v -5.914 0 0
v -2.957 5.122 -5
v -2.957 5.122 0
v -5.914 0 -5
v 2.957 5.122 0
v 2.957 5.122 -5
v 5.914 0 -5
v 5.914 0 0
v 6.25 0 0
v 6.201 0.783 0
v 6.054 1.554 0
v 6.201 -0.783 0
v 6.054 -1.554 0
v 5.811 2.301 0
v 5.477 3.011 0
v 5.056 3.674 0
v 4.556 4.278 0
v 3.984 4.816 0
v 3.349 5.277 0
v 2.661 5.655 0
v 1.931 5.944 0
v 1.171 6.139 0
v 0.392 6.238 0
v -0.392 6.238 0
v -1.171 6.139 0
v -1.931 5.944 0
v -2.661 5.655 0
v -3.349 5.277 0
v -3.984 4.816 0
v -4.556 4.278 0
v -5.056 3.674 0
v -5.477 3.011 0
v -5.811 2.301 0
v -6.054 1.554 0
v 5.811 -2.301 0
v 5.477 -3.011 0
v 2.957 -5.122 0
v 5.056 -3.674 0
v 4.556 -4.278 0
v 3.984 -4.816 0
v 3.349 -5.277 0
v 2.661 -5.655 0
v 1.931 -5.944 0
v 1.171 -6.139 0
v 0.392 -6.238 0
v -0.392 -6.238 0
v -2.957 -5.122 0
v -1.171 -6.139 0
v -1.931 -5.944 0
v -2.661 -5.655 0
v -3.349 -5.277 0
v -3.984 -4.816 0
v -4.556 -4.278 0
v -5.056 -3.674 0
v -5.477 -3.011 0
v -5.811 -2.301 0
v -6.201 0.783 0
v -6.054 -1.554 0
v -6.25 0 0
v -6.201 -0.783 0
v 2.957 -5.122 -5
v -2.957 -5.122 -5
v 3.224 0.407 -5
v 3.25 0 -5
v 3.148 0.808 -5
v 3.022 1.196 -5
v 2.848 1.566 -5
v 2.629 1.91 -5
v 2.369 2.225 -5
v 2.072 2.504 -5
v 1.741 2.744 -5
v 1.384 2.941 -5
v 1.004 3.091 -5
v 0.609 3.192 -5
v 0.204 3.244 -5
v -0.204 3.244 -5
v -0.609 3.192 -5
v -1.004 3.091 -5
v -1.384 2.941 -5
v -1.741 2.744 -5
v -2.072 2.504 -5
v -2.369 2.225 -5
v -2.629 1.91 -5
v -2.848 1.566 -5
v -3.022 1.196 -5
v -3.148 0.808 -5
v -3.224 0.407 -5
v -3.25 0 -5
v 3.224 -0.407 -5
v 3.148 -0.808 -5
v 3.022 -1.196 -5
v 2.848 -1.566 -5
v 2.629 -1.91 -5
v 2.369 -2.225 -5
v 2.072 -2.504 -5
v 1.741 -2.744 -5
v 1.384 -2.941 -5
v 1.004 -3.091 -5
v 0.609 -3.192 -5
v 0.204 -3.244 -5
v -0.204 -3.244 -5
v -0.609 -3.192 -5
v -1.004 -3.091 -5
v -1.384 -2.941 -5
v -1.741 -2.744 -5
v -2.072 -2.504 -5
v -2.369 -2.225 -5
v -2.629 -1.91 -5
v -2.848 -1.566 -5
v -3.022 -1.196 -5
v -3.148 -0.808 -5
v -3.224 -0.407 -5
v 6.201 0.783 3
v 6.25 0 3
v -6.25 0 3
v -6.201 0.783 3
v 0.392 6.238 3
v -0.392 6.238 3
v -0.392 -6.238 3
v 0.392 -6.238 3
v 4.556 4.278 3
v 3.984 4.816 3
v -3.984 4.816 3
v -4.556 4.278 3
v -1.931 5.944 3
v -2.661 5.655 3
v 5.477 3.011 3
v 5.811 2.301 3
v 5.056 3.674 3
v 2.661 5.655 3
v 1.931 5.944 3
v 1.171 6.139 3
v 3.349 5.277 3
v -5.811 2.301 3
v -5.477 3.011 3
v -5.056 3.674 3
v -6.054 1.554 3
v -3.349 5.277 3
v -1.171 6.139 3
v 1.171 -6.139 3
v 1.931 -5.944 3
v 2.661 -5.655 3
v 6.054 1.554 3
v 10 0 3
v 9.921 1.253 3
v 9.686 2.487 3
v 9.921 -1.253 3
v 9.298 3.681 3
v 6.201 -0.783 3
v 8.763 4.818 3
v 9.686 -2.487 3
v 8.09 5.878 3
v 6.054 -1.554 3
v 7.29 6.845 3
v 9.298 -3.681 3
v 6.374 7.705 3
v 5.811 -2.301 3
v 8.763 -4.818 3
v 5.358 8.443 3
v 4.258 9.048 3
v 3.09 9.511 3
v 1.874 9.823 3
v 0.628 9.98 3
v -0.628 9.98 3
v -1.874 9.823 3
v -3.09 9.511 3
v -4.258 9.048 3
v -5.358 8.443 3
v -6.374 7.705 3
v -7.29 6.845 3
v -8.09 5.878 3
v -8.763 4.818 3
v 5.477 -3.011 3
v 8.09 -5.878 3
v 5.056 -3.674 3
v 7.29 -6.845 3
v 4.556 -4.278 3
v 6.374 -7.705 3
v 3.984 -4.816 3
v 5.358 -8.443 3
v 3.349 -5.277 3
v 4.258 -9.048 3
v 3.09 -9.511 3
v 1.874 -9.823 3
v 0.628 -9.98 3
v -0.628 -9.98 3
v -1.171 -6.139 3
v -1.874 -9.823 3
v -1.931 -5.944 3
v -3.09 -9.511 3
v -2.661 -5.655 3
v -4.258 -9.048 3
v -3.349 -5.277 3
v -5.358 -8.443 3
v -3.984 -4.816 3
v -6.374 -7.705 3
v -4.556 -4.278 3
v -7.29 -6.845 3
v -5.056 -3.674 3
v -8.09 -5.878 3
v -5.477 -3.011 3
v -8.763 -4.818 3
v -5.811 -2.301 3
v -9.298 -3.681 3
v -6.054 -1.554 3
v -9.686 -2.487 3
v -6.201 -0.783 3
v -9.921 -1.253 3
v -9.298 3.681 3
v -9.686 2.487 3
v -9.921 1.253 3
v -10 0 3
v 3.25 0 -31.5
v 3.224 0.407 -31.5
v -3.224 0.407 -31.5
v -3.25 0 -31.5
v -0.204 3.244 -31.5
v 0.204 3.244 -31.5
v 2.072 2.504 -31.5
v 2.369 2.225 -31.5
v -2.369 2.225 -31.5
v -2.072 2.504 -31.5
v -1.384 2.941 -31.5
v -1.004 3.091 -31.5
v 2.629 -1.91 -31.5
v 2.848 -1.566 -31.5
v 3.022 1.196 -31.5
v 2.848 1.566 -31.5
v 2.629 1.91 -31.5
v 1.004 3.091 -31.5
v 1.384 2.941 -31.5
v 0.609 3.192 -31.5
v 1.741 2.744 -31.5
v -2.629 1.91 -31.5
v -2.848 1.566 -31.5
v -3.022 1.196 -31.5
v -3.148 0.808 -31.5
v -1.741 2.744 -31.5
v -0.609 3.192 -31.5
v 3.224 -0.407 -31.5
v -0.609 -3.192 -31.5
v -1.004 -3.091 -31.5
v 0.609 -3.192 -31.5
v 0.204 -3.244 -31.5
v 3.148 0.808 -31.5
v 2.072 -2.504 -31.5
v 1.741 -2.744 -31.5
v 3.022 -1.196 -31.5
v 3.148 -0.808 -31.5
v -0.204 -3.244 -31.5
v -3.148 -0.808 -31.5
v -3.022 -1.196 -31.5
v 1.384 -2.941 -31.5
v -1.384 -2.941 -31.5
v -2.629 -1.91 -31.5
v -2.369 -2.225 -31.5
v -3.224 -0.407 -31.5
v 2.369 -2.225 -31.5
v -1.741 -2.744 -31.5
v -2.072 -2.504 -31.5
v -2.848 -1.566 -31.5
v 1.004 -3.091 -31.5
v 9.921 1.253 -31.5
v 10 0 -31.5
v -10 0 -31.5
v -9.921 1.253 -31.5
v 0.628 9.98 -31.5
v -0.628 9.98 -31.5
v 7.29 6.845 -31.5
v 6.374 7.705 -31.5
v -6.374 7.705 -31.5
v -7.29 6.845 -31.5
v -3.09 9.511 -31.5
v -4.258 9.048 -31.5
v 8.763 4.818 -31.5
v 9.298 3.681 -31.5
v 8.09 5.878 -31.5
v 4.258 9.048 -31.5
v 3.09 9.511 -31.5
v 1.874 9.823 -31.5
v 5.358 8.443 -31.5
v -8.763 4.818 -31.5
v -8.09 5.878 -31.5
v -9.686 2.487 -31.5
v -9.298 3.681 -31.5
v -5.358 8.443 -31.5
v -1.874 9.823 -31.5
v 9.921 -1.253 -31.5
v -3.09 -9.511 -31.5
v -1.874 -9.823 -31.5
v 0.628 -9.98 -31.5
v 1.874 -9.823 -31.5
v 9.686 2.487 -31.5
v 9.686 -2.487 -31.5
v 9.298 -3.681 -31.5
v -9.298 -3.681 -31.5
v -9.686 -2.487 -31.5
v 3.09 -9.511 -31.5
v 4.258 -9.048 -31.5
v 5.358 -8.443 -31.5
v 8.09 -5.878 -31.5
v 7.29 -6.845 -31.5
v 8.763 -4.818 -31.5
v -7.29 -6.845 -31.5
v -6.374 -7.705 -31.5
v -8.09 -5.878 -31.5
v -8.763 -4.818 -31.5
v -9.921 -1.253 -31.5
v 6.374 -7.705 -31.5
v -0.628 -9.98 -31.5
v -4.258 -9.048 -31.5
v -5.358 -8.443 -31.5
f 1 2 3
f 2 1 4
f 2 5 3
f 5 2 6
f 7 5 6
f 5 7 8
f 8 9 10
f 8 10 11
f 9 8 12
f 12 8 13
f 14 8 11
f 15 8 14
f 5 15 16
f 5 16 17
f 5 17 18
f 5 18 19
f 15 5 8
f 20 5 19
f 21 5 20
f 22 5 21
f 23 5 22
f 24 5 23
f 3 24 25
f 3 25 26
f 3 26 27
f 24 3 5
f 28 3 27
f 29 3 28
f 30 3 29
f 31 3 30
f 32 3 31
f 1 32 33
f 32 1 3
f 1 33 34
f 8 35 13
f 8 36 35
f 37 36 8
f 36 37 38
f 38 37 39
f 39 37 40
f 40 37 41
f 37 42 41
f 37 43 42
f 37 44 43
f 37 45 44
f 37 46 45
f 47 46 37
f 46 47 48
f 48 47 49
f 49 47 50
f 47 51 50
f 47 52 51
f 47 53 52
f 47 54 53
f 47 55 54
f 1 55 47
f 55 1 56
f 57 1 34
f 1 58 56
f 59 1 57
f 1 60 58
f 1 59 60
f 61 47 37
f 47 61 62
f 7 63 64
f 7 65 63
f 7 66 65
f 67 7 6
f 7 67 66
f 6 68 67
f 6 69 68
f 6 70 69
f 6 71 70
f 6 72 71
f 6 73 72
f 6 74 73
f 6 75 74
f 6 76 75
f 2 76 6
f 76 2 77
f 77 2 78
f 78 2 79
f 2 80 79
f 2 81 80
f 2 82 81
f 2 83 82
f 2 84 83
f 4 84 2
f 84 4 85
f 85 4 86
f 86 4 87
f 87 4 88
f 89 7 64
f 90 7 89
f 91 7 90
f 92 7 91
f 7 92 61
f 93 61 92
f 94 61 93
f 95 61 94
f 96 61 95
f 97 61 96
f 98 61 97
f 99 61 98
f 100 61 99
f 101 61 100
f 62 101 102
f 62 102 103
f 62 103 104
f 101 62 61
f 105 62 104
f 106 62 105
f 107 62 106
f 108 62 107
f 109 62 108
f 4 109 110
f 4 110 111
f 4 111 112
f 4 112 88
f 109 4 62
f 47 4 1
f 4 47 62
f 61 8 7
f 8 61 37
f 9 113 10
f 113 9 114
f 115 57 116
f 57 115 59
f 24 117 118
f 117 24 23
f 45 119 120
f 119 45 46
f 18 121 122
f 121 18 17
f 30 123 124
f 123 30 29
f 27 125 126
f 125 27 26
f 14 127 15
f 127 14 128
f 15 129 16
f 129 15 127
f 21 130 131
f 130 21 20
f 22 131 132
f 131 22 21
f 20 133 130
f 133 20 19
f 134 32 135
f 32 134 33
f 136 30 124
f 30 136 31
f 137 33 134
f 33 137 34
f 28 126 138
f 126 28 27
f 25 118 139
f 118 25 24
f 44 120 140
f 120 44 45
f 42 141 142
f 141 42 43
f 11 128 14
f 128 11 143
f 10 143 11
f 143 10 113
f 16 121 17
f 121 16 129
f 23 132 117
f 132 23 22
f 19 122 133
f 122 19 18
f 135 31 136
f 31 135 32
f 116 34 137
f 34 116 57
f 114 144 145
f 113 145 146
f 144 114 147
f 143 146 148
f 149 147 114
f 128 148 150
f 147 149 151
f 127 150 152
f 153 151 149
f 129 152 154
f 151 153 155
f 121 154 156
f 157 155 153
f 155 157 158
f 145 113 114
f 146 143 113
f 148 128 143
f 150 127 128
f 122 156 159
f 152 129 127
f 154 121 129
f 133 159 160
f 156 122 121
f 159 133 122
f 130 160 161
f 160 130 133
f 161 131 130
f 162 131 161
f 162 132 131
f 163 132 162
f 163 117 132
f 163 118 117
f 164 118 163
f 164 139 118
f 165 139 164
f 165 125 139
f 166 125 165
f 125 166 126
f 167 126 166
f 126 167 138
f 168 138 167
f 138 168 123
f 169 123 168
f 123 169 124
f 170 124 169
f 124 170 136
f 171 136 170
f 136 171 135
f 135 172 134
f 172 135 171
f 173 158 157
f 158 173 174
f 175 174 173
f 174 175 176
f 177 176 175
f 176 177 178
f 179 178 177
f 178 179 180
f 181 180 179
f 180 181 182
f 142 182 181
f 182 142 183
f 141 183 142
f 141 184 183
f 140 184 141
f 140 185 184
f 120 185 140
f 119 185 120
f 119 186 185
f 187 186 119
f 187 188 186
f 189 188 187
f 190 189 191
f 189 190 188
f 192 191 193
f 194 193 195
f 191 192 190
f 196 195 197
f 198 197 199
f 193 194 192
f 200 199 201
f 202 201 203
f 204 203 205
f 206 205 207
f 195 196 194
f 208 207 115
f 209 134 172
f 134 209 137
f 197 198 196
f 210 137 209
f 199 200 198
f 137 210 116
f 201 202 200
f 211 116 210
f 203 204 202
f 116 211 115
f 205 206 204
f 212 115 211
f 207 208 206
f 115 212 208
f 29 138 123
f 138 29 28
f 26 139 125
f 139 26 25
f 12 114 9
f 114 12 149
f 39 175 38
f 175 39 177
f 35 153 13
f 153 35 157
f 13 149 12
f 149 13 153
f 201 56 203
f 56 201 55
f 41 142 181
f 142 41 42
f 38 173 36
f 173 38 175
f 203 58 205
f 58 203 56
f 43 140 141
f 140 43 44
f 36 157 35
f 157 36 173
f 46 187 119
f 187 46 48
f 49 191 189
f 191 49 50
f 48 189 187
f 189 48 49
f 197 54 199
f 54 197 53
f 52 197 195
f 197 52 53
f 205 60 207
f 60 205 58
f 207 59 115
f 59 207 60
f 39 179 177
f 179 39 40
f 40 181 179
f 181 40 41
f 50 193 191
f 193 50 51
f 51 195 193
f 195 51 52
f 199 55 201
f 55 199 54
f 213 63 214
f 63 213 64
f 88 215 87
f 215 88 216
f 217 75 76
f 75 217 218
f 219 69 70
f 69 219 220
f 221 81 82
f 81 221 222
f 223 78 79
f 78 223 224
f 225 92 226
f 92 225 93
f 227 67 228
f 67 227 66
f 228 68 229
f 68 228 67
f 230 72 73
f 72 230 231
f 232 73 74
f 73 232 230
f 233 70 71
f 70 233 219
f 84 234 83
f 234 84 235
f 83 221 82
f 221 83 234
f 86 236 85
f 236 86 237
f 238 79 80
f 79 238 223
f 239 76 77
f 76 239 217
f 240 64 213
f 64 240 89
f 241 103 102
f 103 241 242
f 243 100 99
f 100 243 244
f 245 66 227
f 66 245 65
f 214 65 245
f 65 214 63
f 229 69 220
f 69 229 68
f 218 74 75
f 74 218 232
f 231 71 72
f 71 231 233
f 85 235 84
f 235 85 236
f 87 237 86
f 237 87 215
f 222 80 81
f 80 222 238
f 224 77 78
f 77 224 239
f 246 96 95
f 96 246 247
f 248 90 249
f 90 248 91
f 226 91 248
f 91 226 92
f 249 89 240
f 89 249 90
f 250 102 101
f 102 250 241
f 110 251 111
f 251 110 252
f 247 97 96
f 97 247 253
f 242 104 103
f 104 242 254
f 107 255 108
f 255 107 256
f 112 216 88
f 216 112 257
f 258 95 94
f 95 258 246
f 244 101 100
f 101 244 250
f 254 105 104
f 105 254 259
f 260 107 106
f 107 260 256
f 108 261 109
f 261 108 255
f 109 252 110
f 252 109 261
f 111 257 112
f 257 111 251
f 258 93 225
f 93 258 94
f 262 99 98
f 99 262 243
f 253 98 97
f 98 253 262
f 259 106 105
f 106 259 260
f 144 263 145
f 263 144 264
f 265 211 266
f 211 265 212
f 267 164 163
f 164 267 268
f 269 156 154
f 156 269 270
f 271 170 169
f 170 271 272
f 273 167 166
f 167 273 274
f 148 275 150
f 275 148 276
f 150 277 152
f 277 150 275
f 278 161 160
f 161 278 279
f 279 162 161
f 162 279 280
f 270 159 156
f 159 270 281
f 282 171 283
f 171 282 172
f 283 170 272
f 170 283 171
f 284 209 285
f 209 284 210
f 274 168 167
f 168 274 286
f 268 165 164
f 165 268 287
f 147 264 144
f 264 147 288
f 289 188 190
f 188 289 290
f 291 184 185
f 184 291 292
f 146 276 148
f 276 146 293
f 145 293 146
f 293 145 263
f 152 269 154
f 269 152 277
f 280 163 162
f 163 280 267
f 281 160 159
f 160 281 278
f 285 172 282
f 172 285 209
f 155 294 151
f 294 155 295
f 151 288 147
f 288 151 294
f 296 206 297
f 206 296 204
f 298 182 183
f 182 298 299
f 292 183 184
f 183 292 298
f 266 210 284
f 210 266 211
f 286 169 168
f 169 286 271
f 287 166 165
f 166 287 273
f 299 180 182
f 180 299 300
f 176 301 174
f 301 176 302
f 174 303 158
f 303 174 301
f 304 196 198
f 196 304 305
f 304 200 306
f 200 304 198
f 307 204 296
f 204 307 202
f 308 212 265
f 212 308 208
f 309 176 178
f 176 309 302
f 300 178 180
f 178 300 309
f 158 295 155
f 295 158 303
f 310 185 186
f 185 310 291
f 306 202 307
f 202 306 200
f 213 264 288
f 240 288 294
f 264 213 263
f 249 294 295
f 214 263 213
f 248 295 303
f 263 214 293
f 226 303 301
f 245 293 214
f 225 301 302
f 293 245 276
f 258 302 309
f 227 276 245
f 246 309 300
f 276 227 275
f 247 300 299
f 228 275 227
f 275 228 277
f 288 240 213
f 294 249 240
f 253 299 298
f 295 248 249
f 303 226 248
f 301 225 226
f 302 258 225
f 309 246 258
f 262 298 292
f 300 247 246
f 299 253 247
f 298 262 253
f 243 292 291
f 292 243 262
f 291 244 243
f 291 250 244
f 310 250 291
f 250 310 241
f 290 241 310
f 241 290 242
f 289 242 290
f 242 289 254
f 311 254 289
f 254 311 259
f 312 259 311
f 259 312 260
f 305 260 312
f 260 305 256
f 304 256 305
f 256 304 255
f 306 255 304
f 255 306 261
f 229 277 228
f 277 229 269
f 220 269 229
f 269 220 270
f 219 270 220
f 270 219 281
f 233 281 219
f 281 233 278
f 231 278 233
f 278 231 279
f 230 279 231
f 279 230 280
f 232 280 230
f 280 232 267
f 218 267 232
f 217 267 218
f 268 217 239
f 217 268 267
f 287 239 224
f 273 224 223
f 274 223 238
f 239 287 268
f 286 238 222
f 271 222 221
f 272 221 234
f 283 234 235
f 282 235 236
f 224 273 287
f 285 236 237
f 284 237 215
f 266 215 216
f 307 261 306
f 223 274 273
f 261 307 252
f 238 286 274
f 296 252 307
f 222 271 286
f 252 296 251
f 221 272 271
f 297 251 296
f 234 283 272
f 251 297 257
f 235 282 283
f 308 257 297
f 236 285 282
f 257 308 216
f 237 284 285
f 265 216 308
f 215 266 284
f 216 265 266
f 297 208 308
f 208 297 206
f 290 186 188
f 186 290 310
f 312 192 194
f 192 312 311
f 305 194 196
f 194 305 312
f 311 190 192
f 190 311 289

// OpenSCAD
$fn = 50;


difference() {
	union() {
		translate(v = [0, 0, -31.5000000000]) {
			cylinder(h = 34.5000000000, r = 10.0000000000);
		}
	}
	union() {
		translate(v = [0, 0, 0]) {
			rotate(a = [0, 0, 0]) {
				difference() {
					union() {
						translate(v = [0, 0, -5]) {
							linear_extrude(height = 5) {
								polygon(points = [[5.9142500000, 0.0000000000], [2.9571250000, 5.1218907443], [-2.9571250000, 5.1218907443], [-5.9142500000, 0.0000000000], [-2.9571250000, -5.1218907443], [2.9571250000, -5.1218907443]]);
							}
						}
					}
					union();
				}
			}
		}
		#cylinder(h = 3, r = 6.2500000000);
		#translate(v = [0, 0, -100.0000000000]) {
			cylinder(h = 200, r = 3.2500000000);
		}
	}
}
